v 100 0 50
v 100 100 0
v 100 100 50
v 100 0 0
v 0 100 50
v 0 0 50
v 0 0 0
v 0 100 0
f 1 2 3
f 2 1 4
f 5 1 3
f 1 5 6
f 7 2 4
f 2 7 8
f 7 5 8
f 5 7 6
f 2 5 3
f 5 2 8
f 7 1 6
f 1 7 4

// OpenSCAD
module main_object() {
    difference() {
        // Base cube
        cube([100, 100, 50], center=false);
        
        // Inner triangular cut
        translate([25, 25, 0]) {
            polyhedron(
                points = [
                    [0, 0, 0], [50, 0, 0], [0, 50, 0], // base triangle points
                    [0, 0, 50], [50, 0, 50], [0, 50, 50] // top triangle points
                ],
                faces = [
                    [0, 1, 2], [3, 4, 5], // front and back
                    [0, 1, 4, 3], [1, 2, 5, 4], [2, 0, 3, 5] // sides
                ]
            );
        }
    }
}

main_object();
